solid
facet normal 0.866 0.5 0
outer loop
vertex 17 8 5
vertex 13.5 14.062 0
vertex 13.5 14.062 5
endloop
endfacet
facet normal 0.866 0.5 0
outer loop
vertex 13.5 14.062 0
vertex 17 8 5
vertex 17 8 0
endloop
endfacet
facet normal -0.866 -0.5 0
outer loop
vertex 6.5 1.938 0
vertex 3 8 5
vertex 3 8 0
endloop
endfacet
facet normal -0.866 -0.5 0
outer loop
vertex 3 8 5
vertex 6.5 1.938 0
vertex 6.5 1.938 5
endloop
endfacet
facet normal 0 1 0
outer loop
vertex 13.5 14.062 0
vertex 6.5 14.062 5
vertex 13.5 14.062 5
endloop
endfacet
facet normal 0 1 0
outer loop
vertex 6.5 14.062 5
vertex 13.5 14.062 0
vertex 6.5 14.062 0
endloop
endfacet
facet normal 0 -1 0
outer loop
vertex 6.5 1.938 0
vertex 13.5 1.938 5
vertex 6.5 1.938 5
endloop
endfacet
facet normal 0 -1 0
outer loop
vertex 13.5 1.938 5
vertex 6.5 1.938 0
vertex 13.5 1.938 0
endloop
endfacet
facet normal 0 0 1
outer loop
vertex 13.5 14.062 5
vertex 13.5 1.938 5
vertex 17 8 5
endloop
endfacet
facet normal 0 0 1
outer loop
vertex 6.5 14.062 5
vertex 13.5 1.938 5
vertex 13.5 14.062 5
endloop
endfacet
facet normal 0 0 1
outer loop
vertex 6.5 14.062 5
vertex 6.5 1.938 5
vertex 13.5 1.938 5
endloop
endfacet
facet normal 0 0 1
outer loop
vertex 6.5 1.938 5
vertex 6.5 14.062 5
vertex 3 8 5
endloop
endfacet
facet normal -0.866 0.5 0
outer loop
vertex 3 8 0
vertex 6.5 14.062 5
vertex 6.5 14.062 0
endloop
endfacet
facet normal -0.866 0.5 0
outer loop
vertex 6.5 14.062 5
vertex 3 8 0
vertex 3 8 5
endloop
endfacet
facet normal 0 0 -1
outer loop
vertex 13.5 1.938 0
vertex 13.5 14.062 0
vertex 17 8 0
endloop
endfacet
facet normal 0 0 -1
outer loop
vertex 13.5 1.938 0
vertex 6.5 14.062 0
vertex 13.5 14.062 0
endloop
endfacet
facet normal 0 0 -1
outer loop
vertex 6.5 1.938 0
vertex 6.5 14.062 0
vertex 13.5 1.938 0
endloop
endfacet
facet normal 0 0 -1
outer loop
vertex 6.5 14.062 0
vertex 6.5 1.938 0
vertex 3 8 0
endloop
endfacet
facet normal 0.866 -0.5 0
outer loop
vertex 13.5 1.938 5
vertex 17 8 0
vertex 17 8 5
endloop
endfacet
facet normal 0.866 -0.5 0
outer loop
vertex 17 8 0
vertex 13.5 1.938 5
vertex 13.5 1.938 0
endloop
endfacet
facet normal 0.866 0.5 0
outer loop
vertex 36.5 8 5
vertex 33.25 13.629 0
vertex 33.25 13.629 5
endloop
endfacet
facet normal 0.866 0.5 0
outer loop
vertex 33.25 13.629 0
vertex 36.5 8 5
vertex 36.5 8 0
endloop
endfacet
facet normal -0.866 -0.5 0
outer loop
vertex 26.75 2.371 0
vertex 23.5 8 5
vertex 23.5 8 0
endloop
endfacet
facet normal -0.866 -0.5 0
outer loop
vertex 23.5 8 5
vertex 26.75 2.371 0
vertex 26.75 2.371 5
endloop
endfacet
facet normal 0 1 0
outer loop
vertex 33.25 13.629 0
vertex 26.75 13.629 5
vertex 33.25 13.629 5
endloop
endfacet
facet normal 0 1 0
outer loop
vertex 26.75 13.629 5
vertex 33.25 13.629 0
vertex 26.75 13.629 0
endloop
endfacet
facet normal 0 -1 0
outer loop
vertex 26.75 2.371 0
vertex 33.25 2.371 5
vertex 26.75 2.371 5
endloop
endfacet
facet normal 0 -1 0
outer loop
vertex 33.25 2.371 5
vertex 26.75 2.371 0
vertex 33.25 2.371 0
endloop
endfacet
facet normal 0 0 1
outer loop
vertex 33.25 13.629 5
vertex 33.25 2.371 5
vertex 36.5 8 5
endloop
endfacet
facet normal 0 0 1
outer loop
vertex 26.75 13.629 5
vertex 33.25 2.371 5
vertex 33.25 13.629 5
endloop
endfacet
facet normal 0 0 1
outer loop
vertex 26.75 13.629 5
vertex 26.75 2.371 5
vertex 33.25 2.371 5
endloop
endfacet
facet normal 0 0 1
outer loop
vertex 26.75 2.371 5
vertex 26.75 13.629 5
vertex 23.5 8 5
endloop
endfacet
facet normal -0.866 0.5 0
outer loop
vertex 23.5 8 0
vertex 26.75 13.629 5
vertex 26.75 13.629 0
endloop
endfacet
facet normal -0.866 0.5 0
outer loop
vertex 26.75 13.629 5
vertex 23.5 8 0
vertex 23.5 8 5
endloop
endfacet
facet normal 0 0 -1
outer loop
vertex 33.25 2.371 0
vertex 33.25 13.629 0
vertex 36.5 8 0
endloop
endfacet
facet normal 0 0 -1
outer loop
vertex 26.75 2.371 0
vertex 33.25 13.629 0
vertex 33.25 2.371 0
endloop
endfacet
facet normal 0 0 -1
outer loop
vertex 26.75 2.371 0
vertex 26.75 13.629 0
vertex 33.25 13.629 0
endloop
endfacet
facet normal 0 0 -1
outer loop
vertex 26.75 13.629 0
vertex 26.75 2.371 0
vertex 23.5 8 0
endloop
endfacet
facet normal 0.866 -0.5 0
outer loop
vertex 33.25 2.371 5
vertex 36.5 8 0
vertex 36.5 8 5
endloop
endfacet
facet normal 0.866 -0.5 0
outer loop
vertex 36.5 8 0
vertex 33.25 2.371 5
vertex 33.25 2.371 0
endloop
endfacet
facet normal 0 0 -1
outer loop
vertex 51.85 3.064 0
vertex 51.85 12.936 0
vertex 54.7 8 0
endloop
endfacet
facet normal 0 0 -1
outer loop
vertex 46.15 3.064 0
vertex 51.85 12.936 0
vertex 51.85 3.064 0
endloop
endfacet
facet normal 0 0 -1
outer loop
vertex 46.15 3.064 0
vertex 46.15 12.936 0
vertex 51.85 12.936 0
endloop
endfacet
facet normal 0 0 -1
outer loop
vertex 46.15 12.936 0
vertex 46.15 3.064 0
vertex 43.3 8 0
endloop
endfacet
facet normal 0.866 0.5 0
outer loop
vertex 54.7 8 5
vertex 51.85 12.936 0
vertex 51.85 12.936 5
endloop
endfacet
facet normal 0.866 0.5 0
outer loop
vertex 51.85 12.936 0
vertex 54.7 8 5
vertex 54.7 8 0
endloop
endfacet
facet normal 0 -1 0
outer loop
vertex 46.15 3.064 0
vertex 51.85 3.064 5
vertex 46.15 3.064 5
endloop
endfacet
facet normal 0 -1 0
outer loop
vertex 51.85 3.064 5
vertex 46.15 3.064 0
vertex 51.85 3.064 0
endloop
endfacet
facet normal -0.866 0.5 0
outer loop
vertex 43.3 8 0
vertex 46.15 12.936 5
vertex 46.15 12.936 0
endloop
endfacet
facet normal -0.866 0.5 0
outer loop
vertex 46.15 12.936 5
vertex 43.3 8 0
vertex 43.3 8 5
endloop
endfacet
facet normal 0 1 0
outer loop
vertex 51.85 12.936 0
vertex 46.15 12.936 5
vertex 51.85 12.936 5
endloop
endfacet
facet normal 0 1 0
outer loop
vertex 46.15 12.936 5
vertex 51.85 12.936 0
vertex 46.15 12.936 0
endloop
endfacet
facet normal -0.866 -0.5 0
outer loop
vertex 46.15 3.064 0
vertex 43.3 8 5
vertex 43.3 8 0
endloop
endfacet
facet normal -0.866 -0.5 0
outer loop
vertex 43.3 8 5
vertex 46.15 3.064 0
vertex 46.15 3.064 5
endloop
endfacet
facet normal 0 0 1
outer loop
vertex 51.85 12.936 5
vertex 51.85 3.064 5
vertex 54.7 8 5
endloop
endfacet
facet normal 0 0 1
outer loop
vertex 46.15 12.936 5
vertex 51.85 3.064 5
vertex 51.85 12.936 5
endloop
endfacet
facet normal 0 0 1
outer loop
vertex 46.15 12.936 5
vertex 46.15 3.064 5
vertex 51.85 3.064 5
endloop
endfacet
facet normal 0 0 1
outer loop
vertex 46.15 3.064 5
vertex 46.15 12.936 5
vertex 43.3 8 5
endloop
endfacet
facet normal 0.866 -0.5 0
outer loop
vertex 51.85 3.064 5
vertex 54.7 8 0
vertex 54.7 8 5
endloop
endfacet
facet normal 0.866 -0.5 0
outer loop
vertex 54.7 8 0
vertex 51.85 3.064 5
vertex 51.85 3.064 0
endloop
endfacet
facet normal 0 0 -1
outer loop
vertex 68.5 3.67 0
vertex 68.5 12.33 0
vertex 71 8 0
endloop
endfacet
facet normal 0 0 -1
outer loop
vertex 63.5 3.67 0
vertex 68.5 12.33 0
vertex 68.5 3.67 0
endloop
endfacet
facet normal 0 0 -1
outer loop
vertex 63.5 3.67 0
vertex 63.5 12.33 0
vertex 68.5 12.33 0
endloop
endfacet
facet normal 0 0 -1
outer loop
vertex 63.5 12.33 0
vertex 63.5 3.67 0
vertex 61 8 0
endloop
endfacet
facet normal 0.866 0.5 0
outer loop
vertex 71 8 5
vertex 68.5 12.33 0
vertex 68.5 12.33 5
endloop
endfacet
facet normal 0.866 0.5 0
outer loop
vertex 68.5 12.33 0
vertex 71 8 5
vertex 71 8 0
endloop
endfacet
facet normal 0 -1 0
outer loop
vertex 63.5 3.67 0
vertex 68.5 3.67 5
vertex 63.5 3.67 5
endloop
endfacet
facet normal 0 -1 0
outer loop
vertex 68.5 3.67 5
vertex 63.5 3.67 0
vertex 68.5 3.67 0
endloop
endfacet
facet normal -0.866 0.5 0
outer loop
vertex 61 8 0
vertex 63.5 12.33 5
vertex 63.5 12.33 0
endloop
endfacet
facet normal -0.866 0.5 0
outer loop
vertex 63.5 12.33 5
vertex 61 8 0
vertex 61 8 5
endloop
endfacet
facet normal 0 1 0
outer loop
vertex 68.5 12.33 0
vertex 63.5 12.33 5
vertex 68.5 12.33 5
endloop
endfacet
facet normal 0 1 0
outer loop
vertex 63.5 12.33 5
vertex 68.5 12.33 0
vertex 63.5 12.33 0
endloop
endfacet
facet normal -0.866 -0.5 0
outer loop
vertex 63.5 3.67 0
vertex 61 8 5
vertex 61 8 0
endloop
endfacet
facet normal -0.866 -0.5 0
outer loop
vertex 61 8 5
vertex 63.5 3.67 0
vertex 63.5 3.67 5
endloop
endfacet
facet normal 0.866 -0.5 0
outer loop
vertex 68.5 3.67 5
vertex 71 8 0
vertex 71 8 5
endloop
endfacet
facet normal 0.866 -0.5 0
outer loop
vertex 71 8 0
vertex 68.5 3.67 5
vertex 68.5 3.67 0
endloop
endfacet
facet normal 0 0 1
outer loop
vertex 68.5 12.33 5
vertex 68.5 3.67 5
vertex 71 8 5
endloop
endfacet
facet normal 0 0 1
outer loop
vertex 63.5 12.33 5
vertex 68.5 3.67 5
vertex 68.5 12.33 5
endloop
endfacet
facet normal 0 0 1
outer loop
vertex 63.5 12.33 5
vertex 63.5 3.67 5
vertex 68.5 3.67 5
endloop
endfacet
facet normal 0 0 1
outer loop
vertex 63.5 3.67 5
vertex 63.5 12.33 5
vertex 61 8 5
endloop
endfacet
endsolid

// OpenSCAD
union() {
  union() {
    union() {
      difference() {
        translate([10.0000000000, 8.0000066667, 2.5000000000]) {
          scale([14.0000000000, 12.1240000000, 5.0000000000]) {
            rotate([0.0000000000, 0.0000000000, -0.0000000000]) {
              scale([0.5, 0.577, 1]) cylinder($fn = 6, center = true);
            }
          }
        }
        /* EMPTY */ sphere(r = 0);
      }
      difference() {
        translate([30.0000000000, 8.0000100000, 2.5000000000]) {
          scale([13.0000000000, 11.2580000000, 5.0000000000]) {
            rotate([0.0000000000, 0.0000000000, -0.0000000000]) {
              scale([0.5, 0.577, 1]) cylinder($fn = 6, center = true);
            }
          }
        }
        /* EMPTY */ sphere(r = 0);
      }
    }
    difference() {
      translate([49.0000500000, 7.9999874480, 2.5000000000]) {
        scale([11.4000000000, 9.8720000000, 5.0000000000]) {
          rotate([0.0000000000, 0.0000000000, -0.0000000000]) {
            scale([0.5, 0.577, 1]) cylinder($fn = 6, center = true);
          }
        }
      }
      /* EMPTY */ sphere(r = 0);
    }
  }
  difference() {
    translate([66.0000000000, 7.9999900000, 2.5000000000]) {
      scale([10.0000000000, 8.6600000000, 5.0000000000]) {
        rotate([0.0000000000, 0.0000000000, -0.0000000000]) {
          scale([0.5, 0.577, 1]) cylinder($fn = 6, center = true);
        }
      }
    }
    /* EMPTY */ sphere(r = 0);
  }
}
